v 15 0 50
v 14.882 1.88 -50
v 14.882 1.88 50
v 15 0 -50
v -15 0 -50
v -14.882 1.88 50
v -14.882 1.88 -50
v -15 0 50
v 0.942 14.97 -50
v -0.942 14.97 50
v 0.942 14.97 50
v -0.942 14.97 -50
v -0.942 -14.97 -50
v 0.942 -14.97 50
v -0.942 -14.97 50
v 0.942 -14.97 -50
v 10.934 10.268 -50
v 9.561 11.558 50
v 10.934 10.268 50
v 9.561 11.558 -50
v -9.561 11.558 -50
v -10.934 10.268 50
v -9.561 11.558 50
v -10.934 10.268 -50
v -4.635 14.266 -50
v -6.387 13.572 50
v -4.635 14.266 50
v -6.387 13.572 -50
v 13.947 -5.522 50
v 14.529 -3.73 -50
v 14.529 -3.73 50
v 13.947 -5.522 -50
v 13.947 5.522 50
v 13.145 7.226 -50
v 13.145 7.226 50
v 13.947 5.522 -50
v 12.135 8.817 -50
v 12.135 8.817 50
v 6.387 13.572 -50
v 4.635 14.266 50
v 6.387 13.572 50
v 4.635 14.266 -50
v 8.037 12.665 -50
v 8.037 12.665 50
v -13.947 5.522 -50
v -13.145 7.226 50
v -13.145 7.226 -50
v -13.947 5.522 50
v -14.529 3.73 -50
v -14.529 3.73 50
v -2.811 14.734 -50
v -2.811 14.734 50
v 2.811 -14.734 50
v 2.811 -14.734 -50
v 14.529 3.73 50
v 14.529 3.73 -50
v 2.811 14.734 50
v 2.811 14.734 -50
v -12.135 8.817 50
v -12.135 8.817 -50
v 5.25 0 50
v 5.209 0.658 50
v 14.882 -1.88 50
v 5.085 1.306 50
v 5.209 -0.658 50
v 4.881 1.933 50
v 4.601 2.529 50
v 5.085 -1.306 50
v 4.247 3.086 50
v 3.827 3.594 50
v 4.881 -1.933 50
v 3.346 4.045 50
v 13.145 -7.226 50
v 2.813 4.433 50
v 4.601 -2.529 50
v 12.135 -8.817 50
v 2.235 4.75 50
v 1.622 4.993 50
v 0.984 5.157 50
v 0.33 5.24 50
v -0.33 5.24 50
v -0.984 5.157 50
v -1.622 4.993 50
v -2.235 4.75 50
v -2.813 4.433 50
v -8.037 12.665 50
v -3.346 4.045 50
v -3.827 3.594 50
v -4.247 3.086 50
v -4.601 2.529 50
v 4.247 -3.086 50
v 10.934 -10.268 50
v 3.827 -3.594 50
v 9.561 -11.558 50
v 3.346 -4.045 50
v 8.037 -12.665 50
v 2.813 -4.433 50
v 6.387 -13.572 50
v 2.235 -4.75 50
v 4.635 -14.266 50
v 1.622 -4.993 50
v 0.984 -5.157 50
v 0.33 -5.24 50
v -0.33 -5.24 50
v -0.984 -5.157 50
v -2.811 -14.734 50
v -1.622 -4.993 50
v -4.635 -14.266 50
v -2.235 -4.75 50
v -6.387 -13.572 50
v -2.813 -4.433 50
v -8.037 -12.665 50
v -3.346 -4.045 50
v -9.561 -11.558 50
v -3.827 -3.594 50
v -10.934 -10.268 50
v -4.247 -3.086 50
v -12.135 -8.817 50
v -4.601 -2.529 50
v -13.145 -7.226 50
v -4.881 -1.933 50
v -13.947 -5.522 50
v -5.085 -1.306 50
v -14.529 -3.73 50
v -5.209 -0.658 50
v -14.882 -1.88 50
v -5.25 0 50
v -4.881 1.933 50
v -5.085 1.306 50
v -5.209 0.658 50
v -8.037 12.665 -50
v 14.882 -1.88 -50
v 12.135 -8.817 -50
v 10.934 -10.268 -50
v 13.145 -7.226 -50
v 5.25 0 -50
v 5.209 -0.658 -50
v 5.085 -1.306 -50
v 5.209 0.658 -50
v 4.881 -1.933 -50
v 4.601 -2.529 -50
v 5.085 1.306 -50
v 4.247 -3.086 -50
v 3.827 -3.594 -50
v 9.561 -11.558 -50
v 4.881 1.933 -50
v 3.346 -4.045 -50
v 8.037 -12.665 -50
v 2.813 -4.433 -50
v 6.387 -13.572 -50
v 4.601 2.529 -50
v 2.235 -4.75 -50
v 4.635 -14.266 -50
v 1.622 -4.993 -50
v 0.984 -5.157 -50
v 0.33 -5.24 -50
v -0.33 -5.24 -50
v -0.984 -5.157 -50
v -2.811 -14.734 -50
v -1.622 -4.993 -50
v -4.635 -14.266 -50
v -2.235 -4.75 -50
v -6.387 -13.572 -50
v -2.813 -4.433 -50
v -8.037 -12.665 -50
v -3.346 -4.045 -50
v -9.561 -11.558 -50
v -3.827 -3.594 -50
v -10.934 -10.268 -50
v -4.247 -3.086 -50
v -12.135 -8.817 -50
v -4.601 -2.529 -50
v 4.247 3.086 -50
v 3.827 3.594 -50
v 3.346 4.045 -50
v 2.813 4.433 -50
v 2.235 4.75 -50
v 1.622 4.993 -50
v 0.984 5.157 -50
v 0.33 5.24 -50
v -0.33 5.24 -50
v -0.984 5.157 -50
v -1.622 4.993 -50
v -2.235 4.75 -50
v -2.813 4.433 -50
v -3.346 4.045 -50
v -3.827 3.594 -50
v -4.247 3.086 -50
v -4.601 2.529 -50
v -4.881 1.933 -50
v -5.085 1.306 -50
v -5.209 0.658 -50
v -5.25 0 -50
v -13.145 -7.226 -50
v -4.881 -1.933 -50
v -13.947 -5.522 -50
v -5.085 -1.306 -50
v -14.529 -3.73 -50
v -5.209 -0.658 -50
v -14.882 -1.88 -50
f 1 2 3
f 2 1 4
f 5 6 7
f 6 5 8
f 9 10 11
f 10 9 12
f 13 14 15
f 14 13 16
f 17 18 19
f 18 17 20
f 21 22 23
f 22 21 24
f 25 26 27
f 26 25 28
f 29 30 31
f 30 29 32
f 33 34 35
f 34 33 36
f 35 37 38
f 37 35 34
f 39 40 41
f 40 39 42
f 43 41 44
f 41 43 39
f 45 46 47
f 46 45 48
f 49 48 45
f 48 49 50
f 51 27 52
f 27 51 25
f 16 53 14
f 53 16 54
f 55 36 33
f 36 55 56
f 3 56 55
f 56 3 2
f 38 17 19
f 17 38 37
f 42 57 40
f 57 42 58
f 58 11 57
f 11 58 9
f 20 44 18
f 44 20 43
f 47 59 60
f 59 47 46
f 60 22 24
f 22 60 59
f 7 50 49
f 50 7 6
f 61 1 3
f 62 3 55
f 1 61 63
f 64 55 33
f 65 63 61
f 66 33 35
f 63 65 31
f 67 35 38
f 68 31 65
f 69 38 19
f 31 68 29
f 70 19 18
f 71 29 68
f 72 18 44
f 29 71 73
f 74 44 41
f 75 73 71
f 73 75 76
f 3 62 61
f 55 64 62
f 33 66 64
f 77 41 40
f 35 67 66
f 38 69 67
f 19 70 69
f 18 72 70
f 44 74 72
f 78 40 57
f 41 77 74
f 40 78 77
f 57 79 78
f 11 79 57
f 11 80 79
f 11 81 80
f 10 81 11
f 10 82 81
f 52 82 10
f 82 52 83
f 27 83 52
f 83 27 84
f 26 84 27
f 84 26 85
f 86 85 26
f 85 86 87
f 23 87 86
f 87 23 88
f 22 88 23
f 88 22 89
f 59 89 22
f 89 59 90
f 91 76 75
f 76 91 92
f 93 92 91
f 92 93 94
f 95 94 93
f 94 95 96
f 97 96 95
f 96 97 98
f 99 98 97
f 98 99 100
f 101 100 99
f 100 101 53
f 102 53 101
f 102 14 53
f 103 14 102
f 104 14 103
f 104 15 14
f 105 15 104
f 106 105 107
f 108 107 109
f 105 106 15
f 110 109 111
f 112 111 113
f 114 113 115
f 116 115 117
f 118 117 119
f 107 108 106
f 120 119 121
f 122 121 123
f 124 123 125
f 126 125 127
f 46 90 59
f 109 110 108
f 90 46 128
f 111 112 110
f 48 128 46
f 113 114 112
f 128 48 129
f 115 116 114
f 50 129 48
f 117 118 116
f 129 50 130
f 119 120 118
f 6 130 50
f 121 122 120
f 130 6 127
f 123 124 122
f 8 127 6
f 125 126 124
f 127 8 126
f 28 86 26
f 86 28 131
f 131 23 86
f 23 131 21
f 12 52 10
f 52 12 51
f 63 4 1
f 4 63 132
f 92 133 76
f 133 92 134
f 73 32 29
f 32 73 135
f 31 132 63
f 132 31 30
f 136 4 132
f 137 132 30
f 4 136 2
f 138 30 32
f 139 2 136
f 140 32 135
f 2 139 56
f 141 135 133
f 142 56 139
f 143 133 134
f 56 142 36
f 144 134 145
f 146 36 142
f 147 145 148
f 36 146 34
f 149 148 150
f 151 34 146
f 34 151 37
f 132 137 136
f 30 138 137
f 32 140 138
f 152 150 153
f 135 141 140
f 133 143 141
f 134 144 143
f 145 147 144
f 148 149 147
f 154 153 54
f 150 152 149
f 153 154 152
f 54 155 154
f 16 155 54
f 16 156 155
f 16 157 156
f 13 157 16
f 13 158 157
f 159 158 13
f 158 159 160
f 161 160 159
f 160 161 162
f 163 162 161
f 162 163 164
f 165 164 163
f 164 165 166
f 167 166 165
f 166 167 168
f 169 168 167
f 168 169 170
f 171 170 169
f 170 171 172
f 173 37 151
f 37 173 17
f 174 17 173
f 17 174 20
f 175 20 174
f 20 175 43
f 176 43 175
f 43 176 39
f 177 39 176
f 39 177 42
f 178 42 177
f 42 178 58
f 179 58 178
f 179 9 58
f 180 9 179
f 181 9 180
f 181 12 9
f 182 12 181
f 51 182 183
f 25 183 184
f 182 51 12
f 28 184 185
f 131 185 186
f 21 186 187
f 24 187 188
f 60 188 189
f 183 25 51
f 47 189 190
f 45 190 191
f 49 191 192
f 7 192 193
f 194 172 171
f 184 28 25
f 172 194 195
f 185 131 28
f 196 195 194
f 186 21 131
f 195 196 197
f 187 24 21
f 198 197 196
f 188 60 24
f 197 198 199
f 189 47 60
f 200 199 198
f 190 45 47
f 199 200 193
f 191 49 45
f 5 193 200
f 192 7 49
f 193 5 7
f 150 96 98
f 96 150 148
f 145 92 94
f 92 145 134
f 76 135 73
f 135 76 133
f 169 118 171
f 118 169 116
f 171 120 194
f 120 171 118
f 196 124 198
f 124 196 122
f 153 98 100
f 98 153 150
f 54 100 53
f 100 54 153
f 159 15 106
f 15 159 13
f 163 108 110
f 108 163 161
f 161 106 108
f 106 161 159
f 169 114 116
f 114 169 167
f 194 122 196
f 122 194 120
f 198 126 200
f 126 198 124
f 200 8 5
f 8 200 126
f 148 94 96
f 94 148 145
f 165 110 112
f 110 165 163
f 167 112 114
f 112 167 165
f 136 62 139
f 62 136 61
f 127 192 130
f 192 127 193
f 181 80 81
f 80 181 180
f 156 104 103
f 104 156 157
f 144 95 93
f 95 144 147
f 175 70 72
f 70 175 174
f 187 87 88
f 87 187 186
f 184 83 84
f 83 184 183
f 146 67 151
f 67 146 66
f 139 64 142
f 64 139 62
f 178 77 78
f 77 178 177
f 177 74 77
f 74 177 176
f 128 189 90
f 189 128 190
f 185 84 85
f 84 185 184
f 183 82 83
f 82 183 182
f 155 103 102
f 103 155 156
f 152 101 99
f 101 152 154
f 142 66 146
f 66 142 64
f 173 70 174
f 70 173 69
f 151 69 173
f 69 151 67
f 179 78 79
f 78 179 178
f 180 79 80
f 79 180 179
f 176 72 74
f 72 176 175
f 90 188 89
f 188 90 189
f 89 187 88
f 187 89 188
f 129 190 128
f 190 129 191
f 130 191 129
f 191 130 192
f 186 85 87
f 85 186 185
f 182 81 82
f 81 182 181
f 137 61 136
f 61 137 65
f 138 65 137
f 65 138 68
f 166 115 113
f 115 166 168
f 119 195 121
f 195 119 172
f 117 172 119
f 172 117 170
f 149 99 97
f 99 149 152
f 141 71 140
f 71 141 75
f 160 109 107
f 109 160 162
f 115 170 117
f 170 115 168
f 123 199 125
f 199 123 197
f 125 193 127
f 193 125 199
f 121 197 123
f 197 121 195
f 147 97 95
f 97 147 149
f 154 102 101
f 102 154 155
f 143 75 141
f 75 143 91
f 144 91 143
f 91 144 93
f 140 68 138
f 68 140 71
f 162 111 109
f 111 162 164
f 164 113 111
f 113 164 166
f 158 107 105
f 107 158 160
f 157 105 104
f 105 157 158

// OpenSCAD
$fn = 50;


difference() {
	union() {
		translate(v = [0, 0, -50.0000000000]) {
			cylinder(h = 100, r = 15.0000000000);
		}
	}
	union() {
		translate(v = [0, 0, -100.0000000000]) {
			cylinder(h = 200, r = 5.2500000000);
		}
	}
}
